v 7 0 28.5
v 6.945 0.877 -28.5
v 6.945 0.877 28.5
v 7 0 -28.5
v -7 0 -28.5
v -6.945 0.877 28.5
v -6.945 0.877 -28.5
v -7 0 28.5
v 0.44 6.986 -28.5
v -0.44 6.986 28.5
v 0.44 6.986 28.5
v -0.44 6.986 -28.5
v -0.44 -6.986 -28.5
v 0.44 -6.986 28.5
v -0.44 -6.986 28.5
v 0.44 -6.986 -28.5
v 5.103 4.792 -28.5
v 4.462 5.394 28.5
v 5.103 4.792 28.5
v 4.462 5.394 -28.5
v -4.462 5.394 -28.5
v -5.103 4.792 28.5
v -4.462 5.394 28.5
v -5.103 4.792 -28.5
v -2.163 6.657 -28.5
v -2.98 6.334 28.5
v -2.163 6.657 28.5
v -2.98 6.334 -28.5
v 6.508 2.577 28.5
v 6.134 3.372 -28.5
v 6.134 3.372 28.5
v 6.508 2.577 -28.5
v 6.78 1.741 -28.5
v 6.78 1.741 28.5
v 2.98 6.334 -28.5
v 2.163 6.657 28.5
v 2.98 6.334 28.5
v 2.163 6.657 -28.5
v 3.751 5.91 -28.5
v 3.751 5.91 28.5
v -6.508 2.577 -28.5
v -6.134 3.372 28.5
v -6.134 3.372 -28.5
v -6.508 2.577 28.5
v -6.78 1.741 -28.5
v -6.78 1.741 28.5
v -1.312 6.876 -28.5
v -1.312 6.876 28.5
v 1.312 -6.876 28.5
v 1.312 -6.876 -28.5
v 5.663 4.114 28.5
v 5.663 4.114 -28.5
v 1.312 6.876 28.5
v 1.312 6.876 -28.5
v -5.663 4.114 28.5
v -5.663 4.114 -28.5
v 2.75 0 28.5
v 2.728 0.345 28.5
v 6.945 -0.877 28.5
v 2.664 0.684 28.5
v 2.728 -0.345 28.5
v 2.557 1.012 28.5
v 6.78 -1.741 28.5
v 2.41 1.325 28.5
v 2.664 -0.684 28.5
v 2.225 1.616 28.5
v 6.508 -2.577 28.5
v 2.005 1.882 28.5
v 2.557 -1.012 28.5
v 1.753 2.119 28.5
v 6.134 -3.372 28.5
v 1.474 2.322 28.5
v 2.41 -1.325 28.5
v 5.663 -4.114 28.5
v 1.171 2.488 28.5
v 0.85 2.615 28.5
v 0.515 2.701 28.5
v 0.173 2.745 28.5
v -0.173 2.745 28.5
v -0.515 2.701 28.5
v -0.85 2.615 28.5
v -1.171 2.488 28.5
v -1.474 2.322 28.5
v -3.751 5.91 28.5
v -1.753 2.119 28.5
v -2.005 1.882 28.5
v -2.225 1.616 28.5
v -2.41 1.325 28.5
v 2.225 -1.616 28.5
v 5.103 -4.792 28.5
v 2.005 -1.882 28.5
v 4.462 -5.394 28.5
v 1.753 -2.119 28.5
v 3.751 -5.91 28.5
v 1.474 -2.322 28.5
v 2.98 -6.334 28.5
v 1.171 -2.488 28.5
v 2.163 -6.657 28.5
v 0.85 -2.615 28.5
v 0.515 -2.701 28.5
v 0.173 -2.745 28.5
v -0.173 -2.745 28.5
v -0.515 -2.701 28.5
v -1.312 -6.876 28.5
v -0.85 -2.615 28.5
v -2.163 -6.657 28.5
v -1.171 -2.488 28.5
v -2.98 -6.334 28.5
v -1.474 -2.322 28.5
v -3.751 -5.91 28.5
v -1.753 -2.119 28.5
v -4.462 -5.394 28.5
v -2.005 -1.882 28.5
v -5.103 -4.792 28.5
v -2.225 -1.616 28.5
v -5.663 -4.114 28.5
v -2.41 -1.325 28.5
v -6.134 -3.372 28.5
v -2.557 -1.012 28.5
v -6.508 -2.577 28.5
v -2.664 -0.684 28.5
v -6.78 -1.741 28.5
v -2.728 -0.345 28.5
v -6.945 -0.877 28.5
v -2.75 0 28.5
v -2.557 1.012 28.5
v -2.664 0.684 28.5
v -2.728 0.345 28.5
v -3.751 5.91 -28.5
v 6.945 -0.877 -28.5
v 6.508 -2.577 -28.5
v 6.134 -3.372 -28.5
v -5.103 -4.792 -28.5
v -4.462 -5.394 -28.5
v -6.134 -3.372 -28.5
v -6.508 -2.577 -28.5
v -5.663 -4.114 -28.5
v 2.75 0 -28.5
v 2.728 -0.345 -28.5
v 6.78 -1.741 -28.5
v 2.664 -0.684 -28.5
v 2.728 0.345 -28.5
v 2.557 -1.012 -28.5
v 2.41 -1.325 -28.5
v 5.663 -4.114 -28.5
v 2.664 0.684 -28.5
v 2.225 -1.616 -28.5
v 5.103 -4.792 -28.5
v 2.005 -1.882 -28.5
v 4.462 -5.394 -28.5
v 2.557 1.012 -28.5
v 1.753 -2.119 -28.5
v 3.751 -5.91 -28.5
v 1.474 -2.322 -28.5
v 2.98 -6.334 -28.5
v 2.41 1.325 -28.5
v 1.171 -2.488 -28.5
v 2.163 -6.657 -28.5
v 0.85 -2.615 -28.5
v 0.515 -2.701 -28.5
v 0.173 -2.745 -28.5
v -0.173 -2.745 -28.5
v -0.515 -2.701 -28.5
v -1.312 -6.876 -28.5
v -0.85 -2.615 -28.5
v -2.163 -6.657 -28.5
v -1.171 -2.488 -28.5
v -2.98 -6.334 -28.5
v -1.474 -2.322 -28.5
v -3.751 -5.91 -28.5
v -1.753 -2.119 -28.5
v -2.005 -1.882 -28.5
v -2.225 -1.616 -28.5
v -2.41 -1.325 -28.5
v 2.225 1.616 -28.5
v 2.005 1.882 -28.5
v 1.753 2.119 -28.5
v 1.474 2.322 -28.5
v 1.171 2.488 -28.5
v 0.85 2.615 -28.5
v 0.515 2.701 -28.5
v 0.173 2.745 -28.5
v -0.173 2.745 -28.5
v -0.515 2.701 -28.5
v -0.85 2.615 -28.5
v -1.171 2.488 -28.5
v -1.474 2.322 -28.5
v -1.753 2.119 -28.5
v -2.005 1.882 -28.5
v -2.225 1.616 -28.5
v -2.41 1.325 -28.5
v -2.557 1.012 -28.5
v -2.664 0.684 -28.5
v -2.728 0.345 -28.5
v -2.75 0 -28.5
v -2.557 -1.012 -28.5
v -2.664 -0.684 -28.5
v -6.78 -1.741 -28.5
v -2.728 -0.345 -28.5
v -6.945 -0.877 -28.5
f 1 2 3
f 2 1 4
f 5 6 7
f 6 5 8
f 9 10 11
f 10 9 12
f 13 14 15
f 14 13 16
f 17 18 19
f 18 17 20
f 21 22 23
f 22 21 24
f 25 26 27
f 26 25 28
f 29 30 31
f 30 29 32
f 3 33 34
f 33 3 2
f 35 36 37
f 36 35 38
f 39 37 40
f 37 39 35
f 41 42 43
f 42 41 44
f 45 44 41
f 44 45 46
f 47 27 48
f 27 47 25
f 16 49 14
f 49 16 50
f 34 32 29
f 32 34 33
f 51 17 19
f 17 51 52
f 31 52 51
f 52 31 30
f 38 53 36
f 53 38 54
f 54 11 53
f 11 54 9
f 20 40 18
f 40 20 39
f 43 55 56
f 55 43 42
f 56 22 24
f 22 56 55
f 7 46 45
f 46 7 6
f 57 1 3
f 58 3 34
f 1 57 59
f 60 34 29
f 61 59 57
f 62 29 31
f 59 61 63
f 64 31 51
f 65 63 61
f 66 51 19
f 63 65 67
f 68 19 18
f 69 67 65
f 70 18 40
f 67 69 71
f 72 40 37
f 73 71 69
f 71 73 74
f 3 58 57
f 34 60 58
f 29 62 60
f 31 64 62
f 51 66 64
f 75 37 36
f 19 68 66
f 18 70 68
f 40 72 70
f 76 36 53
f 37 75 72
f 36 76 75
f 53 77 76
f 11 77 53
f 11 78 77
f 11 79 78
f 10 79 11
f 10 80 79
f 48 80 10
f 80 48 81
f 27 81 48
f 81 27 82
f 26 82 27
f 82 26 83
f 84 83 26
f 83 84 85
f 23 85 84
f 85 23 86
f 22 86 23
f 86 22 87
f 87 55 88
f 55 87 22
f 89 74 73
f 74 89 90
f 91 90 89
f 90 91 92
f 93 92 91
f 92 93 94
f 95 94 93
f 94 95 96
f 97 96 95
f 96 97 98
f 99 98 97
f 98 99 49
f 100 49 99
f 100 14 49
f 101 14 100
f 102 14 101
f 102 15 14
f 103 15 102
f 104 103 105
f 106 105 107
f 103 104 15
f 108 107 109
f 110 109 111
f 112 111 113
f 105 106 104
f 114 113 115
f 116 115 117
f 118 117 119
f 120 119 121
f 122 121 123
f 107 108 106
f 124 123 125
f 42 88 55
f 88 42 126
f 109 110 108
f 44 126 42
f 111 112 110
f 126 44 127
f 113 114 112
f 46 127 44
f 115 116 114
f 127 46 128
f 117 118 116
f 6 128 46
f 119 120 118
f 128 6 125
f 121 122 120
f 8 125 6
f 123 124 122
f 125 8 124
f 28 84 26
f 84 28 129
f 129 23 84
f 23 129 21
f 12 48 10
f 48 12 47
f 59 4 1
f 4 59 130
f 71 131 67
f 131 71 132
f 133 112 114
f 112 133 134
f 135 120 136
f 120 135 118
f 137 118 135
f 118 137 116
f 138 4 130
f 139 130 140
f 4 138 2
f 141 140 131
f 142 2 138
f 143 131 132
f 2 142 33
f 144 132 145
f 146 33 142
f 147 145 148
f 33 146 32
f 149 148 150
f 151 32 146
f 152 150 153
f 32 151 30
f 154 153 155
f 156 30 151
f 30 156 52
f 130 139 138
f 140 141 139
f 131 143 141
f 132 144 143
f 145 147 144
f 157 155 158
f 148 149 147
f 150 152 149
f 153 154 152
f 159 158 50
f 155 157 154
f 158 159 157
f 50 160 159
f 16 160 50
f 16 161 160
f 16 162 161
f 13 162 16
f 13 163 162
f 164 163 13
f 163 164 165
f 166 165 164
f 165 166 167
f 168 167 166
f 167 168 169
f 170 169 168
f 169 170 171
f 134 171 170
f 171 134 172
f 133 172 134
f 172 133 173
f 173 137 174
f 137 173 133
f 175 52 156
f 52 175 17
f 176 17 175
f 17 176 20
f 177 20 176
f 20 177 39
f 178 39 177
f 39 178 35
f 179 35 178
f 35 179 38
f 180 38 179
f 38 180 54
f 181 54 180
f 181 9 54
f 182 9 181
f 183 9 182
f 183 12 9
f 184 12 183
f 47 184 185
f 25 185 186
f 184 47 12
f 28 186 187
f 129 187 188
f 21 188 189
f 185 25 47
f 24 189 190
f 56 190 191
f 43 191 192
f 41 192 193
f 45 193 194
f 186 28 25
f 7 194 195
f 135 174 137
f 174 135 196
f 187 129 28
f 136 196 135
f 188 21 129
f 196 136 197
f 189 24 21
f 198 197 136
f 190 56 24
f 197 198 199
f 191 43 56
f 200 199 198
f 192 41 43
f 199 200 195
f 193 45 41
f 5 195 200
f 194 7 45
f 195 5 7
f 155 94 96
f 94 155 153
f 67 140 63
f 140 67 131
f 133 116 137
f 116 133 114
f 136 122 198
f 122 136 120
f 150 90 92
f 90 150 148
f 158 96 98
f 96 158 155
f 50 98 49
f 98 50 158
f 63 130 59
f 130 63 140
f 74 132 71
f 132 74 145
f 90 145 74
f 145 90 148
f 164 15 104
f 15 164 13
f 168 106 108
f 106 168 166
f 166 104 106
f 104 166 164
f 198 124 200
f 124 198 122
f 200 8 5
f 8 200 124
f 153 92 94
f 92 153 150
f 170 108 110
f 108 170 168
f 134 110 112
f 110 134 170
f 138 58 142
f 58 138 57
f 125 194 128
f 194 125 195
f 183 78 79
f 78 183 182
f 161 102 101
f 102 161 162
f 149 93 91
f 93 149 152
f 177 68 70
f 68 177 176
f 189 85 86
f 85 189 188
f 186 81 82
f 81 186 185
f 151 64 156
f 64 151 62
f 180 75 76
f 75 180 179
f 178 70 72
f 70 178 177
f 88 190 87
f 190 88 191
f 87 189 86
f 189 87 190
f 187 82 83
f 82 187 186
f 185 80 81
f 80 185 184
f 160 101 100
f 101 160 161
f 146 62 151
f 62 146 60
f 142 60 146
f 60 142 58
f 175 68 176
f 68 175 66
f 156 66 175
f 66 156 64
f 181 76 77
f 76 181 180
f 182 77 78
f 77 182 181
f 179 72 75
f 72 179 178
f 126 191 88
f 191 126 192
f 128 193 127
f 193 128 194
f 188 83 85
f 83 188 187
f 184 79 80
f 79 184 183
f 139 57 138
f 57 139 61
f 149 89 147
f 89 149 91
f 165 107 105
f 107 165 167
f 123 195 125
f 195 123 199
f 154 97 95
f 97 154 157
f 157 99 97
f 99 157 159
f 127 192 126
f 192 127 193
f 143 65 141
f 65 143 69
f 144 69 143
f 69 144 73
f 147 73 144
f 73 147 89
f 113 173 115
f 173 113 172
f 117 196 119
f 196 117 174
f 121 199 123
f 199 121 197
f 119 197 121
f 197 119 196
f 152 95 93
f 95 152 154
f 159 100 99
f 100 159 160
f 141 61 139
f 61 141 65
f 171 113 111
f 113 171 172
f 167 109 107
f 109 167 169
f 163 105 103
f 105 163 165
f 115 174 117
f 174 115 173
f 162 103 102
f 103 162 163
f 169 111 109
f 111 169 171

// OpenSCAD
$fn = 50;


difference() {
	union() {
		translate(v = [0, 0, -28.5000000000]) {
			cylinder(h = 57, r = 7.0000000000);
		}
	}
	union() {
		translate(v = [0, 0, -100.0000000000]) {
			cylinder(h = 200, r = 2.7500000000);
		}
	}
}
